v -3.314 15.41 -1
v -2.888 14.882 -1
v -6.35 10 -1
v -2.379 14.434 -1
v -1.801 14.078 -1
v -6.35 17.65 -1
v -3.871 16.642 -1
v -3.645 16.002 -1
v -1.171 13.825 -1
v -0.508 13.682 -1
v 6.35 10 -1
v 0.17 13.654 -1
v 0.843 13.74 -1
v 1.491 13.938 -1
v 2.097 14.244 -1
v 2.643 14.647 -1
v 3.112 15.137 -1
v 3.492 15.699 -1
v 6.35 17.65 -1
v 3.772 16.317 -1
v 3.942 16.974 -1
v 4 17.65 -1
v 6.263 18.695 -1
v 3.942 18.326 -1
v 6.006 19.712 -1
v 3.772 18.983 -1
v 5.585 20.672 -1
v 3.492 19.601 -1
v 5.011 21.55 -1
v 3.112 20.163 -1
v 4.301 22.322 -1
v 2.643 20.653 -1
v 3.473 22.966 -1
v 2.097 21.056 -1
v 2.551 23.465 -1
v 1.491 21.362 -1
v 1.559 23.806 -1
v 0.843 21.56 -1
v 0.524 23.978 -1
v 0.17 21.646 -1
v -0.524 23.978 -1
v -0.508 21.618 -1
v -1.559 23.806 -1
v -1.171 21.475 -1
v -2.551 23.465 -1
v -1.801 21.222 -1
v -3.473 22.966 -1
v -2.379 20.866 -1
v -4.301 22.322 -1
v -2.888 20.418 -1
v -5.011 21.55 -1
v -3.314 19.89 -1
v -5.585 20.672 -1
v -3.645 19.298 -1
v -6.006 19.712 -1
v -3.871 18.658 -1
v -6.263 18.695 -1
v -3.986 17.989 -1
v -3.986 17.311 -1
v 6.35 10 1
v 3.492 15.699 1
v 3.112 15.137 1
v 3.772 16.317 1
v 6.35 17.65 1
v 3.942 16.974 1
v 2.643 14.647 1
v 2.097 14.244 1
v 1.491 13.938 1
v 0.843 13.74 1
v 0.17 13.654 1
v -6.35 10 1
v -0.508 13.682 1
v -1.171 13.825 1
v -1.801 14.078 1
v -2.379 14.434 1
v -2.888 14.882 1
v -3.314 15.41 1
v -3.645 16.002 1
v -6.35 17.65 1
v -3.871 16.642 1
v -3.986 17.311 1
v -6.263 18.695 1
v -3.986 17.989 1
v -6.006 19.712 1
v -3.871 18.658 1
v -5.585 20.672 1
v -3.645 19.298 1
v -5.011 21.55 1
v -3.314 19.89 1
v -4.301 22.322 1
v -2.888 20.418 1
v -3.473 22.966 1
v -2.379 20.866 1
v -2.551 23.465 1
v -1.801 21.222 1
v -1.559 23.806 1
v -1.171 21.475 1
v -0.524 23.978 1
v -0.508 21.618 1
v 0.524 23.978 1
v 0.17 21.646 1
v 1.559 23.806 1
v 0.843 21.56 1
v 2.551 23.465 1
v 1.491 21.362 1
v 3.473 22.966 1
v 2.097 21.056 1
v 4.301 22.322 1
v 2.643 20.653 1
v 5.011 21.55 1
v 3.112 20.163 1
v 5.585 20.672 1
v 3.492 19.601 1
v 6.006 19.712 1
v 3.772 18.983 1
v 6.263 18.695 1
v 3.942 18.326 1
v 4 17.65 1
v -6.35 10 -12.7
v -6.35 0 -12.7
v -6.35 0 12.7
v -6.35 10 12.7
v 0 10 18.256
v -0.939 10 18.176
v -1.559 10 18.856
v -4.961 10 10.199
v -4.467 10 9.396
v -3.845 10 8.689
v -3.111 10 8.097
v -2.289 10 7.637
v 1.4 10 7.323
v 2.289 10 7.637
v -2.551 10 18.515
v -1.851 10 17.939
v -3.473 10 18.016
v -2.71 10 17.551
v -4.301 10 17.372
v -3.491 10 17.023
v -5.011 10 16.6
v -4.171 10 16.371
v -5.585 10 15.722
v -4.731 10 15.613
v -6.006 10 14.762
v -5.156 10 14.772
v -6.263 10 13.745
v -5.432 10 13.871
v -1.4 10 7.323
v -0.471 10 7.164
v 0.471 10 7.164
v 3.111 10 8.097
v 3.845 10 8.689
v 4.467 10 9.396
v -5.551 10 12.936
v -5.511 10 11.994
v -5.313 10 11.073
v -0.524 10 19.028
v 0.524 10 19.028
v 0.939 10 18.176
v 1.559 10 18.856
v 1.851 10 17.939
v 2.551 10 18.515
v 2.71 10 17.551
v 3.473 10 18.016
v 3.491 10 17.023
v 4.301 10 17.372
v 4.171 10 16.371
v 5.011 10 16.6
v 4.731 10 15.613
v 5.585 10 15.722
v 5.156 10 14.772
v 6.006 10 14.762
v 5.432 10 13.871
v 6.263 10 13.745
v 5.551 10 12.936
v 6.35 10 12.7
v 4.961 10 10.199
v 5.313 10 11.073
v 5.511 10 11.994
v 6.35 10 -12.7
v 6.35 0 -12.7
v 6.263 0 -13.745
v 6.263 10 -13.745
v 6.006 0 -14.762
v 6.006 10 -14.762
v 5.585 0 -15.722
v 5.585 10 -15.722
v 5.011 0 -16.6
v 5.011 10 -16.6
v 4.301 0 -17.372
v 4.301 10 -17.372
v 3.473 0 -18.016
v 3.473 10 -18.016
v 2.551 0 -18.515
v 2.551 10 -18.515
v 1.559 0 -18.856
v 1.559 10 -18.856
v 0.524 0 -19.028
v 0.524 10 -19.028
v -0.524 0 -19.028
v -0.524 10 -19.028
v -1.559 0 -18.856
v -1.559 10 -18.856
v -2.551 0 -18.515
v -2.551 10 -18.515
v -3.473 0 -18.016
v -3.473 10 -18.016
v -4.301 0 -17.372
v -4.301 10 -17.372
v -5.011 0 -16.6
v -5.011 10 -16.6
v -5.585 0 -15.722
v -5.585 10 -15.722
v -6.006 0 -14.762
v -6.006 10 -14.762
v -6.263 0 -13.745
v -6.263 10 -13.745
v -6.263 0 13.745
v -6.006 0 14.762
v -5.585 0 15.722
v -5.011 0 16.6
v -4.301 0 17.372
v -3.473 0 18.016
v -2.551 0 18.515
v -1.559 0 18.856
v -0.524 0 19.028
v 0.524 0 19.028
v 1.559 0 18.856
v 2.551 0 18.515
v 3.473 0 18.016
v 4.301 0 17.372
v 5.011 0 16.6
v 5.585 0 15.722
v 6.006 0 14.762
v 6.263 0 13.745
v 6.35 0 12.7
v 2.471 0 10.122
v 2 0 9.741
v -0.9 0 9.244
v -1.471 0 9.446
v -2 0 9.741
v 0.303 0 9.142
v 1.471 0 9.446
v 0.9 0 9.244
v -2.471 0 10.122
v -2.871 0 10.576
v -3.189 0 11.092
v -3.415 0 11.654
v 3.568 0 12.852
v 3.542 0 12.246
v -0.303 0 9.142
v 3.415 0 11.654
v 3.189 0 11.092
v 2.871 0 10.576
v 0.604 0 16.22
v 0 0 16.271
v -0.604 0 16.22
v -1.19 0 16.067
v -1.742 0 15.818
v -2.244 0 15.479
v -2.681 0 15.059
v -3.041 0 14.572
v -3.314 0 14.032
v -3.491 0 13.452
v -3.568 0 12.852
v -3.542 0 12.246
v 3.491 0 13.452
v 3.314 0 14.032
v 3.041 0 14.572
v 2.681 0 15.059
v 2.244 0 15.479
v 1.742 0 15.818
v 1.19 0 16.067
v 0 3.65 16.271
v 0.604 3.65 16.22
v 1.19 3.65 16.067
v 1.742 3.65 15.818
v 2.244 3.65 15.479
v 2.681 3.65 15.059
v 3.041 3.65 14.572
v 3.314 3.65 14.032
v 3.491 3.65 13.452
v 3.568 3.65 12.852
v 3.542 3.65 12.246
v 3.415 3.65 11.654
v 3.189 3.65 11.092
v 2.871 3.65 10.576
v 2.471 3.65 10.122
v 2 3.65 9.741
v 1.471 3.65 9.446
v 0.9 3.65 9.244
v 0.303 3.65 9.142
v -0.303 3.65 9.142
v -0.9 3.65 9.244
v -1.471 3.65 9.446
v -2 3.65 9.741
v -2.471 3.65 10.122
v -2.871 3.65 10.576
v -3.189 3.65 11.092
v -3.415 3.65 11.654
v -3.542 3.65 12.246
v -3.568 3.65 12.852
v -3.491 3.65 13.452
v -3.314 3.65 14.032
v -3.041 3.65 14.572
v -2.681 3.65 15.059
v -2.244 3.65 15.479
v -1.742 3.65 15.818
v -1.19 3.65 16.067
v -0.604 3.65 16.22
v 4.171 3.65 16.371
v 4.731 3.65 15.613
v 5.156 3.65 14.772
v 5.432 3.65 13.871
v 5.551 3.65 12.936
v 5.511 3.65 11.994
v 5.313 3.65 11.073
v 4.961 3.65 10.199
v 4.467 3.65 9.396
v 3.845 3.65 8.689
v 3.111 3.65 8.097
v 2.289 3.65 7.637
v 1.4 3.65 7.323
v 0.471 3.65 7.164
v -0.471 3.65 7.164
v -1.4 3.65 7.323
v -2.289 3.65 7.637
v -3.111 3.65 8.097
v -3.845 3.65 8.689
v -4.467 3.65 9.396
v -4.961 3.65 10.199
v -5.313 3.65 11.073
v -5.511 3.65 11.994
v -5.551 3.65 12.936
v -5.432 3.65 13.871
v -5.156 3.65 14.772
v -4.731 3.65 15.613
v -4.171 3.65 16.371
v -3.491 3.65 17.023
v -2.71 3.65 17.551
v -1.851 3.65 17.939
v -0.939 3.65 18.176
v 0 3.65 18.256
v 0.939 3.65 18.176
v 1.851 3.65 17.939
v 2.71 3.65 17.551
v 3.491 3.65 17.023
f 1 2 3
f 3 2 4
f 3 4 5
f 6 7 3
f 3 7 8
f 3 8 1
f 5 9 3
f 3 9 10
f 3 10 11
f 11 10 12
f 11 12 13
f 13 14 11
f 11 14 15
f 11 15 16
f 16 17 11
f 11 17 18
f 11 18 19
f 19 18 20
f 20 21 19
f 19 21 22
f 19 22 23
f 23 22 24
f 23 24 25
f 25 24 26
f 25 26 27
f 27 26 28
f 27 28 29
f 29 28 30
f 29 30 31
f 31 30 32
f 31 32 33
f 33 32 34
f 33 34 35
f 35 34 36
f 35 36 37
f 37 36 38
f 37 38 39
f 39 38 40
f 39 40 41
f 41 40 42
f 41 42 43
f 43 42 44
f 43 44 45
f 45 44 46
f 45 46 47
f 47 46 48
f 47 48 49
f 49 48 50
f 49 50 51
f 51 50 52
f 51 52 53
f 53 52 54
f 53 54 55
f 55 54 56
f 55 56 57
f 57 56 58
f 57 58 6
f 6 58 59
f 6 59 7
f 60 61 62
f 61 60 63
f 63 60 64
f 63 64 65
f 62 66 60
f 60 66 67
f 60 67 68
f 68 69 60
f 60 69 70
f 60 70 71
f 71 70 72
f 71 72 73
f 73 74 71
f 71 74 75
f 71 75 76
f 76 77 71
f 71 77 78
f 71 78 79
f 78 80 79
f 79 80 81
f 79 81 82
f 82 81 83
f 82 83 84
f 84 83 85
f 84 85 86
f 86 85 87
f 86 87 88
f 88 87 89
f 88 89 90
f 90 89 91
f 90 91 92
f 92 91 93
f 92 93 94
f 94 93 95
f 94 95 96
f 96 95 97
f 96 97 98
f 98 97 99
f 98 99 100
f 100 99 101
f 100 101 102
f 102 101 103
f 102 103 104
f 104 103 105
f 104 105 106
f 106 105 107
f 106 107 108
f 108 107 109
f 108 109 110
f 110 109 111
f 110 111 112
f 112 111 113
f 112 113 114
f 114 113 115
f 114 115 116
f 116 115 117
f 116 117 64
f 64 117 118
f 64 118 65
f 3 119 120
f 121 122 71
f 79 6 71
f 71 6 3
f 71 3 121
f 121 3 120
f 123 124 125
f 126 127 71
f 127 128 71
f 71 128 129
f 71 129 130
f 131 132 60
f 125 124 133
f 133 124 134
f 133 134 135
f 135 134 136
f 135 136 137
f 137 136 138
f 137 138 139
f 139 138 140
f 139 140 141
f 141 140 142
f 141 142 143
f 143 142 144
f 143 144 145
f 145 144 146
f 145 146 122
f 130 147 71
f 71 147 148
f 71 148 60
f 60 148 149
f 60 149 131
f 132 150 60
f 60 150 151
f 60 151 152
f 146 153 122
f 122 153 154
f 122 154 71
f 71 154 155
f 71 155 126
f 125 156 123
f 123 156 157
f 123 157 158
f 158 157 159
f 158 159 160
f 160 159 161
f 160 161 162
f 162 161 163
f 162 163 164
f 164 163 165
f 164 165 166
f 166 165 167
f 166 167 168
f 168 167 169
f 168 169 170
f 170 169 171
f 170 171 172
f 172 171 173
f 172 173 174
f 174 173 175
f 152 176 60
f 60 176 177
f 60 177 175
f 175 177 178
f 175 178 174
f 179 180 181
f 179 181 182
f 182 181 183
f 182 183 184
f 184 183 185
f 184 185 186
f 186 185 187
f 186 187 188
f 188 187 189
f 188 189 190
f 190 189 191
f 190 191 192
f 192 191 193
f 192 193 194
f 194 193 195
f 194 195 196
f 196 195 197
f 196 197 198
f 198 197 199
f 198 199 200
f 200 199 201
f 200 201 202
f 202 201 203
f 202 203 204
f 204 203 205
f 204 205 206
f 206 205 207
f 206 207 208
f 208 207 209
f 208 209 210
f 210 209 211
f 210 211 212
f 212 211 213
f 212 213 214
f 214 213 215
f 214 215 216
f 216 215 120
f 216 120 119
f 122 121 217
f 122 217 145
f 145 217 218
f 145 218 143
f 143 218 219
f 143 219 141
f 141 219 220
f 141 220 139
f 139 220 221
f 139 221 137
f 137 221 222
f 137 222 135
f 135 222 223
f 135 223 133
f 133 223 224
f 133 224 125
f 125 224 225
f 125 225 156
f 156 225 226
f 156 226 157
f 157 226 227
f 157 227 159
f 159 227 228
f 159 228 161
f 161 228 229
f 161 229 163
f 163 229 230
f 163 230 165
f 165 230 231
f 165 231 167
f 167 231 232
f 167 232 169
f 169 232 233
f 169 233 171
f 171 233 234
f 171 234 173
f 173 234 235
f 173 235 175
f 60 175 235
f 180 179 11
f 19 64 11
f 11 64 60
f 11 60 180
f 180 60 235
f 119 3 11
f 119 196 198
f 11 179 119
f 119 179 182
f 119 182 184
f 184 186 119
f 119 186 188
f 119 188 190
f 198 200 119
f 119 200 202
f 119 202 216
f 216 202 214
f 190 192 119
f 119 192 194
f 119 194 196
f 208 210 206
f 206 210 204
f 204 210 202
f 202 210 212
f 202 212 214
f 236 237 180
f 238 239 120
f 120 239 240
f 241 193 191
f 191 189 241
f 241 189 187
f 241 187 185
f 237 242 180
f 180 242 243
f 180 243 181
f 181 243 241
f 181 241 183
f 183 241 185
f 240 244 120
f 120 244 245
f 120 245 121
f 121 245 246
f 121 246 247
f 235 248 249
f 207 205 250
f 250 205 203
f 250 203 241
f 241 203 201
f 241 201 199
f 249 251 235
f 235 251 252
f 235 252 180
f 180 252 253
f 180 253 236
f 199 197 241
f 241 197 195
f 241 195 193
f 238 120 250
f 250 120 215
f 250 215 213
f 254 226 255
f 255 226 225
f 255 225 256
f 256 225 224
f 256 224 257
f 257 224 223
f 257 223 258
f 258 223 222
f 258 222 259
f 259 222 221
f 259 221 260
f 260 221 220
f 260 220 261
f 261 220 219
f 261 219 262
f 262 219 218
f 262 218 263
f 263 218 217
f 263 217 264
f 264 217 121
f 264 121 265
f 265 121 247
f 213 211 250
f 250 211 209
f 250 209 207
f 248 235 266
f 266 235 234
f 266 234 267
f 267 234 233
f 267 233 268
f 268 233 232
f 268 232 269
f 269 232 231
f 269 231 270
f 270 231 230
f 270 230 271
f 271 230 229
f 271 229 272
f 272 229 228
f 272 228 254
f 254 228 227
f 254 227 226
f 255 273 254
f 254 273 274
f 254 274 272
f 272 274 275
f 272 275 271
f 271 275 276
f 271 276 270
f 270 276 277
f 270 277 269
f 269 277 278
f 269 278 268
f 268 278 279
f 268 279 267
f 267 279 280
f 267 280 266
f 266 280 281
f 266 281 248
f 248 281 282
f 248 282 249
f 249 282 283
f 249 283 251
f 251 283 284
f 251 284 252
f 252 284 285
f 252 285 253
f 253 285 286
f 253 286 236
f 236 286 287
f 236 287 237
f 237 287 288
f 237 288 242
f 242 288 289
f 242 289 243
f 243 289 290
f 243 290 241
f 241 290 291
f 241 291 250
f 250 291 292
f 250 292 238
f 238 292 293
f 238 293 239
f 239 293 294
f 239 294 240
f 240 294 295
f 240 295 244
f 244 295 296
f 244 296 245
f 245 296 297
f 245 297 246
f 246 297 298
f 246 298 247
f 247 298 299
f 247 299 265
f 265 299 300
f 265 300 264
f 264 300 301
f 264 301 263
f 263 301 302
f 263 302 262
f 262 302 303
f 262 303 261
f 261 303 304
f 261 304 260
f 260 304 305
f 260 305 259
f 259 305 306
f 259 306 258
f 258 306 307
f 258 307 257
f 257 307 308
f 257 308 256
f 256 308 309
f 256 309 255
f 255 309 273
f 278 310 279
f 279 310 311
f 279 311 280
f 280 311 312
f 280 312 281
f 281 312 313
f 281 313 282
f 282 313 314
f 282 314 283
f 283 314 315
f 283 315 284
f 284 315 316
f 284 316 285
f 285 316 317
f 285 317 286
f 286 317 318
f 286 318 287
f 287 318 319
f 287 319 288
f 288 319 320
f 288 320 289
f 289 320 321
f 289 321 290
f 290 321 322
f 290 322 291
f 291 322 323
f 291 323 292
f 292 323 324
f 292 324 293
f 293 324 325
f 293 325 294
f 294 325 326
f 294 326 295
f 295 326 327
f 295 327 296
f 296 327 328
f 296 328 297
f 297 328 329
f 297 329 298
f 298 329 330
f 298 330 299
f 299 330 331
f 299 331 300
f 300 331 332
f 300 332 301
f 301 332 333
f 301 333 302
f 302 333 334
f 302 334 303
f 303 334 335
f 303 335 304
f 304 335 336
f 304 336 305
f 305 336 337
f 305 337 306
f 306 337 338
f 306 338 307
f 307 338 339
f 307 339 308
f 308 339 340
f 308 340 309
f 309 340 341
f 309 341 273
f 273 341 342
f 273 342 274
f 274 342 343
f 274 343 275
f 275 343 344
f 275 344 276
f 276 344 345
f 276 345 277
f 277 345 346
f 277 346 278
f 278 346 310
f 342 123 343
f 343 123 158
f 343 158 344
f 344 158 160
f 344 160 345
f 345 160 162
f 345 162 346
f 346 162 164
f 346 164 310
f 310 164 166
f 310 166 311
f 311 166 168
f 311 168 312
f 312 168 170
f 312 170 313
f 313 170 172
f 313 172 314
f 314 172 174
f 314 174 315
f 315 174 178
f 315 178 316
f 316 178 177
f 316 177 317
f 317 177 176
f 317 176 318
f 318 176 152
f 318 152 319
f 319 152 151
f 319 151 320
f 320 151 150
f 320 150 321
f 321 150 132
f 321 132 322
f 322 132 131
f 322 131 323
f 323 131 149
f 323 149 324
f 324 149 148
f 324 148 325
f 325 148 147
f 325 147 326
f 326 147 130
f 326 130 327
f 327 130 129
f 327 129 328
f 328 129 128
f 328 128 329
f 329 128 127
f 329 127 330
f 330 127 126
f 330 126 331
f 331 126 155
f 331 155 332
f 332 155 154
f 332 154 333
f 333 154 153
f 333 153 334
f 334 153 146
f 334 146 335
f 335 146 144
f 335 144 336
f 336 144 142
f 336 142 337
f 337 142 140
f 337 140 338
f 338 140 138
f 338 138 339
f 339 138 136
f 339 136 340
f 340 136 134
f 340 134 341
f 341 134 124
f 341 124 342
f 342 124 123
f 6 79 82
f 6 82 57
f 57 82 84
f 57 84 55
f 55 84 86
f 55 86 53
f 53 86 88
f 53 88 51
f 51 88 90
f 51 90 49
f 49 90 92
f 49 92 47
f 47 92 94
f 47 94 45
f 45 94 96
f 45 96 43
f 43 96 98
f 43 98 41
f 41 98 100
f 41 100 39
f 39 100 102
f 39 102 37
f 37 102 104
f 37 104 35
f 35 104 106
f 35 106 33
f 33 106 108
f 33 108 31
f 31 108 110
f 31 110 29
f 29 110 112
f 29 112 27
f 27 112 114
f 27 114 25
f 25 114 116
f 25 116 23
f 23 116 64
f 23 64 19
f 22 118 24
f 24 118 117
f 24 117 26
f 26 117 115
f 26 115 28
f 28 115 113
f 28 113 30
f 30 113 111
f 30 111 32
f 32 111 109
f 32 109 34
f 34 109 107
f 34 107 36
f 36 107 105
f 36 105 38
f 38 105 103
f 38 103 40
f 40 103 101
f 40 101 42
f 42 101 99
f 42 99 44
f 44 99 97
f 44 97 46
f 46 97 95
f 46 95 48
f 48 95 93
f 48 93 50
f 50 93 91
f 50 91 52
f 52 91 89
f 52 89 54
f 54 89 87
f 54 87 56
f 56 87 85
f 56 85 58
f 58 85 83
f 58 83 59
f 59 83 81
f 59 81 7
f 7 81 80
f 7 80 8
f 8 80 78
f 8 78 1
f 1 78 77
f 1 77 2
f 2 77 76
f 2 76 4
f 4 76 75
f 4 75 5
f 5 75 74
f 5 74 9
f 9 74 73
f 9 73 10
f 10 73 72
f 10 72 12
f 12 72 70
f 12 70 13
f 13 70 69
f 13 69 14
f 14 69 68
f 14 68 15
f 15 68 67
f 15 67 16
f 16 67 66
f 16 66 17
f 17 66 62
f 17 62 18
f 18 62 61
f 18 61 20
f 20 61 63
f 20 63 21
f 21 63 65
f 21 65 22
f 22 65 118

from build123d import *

# Parameters (mm, degrees)
BOSS_EXTRUDE1_DEPTH                              = 10
CBORE_FOR_1_4_SOCKET_HEAD_CAP_SCREW1_D           = 7.14248
CBORE_FOR_1_4_SOCKET_HEAD_CAP_SCREW1_CBORE_D     = 11.1125
CBORE_FOR_1_4_SOCKET_HEAD_CAP_SCREW1_CBORE_DEPTH = 6.35
SKETCH5_W                                        = 12.7
SKETCH5_H                                        = 2
BOSS_EXTRUDE2_DEPTH                              = 14
CUT_EXTRUDE1_DEPTH                               = 10
SKETCH7_R                                        = 4
CUT_EXTRUDE2_DEPTH                               = 10


with BuildPart() as part:
    # Sketch1 → Boss-Extrude1 (new body)
    with BuildSketch(Plane(origin=(0, 0, 0), x_dir=(1, 0, 0), z_dir=(0, 1, 0))):
        with BuildLine():
            Line((6.35, 12.7), (6.35, -12.7))
            ThreePointArc((6.35, -12.7), (0, -19.05), (-6.35, -12.7))
            Line((-6.35, -12.7), (-6.35, 12.7))
            ThreePointArc((-6.35, 12.7), (0, 19.05), (6.35, 12.7))
        make_face()
    extrude(amount=BOSS_EXTRUDE1_DEPTH)

    # CBORE for 1/4 Socket Head Cap Screw1 (through all)
    with Locations(Plane(origin=(0, 10, 0), x_dir=(1, 0, 0), z_dir=(0, 1, 0))):
        with Locations((0, -12.7)):
            CounterBoreHole(CBORE_FOR_1_4_SOCKET_HEAD_CAP_SCREW1_D / 2, CBORE_FOR_1_4_SOCKET_HEAD_CAP_SCREW1_CBORE_D / 2, CBORE_FOR_1_4_SOCKET_HEAD_CAP_SCREW1_CBORE_DEPTH)

    # Sketch5 → Boss-Extrude2 (add)
    with BuildSketch(Plane(origin=(0, 10, 0), x_dir=(1, 0, 0), z_dir=(0, 1, 0))):
        Rectangle(SKETCH5_W, SKETCH5_H)
    extrude(amount=BOSS_EXTRUDE2_DEPTH)

    # Sketch6 → Cut-Extrude1 (cut)
    with BuildSketch(Plane.XY.offset(1)):
        with BuildLine():
            Line((-6.35, 24), (-6.35, 17.65))
            ThreePointArc((-6.35, 17.65), (-4.490128051, 22.14012807), (2.8e-08, 24))
            Line((2.8e-08, 24), (-6.35, 24))
        make_face()
        with BuildLine():
            Line((6.35, 24), (2.8e-08, 24))
            ThreePointArc((2.8e-08, 24), (4.49012807, 22.140128051), (6.35, 17.65))
            Line((6.35, 17.65), (6.35, 24))
        make_face()
    extrude(amount=-CUT_EXTRUDE1_DEPTH, mode=Mode.SUBTRACT)

    # Sketch7 → Cut-Extrude2 (cut)
    with BuildSketch(Plane.XY.offset(1)):
        with Locations((0, 17.65)):
            Circle(SKETCH7_R)
    extrude(amount=-CUT_EXTRUDE2_DEPTH, mode=Mode.SUBTRACT)


solid = part.part
